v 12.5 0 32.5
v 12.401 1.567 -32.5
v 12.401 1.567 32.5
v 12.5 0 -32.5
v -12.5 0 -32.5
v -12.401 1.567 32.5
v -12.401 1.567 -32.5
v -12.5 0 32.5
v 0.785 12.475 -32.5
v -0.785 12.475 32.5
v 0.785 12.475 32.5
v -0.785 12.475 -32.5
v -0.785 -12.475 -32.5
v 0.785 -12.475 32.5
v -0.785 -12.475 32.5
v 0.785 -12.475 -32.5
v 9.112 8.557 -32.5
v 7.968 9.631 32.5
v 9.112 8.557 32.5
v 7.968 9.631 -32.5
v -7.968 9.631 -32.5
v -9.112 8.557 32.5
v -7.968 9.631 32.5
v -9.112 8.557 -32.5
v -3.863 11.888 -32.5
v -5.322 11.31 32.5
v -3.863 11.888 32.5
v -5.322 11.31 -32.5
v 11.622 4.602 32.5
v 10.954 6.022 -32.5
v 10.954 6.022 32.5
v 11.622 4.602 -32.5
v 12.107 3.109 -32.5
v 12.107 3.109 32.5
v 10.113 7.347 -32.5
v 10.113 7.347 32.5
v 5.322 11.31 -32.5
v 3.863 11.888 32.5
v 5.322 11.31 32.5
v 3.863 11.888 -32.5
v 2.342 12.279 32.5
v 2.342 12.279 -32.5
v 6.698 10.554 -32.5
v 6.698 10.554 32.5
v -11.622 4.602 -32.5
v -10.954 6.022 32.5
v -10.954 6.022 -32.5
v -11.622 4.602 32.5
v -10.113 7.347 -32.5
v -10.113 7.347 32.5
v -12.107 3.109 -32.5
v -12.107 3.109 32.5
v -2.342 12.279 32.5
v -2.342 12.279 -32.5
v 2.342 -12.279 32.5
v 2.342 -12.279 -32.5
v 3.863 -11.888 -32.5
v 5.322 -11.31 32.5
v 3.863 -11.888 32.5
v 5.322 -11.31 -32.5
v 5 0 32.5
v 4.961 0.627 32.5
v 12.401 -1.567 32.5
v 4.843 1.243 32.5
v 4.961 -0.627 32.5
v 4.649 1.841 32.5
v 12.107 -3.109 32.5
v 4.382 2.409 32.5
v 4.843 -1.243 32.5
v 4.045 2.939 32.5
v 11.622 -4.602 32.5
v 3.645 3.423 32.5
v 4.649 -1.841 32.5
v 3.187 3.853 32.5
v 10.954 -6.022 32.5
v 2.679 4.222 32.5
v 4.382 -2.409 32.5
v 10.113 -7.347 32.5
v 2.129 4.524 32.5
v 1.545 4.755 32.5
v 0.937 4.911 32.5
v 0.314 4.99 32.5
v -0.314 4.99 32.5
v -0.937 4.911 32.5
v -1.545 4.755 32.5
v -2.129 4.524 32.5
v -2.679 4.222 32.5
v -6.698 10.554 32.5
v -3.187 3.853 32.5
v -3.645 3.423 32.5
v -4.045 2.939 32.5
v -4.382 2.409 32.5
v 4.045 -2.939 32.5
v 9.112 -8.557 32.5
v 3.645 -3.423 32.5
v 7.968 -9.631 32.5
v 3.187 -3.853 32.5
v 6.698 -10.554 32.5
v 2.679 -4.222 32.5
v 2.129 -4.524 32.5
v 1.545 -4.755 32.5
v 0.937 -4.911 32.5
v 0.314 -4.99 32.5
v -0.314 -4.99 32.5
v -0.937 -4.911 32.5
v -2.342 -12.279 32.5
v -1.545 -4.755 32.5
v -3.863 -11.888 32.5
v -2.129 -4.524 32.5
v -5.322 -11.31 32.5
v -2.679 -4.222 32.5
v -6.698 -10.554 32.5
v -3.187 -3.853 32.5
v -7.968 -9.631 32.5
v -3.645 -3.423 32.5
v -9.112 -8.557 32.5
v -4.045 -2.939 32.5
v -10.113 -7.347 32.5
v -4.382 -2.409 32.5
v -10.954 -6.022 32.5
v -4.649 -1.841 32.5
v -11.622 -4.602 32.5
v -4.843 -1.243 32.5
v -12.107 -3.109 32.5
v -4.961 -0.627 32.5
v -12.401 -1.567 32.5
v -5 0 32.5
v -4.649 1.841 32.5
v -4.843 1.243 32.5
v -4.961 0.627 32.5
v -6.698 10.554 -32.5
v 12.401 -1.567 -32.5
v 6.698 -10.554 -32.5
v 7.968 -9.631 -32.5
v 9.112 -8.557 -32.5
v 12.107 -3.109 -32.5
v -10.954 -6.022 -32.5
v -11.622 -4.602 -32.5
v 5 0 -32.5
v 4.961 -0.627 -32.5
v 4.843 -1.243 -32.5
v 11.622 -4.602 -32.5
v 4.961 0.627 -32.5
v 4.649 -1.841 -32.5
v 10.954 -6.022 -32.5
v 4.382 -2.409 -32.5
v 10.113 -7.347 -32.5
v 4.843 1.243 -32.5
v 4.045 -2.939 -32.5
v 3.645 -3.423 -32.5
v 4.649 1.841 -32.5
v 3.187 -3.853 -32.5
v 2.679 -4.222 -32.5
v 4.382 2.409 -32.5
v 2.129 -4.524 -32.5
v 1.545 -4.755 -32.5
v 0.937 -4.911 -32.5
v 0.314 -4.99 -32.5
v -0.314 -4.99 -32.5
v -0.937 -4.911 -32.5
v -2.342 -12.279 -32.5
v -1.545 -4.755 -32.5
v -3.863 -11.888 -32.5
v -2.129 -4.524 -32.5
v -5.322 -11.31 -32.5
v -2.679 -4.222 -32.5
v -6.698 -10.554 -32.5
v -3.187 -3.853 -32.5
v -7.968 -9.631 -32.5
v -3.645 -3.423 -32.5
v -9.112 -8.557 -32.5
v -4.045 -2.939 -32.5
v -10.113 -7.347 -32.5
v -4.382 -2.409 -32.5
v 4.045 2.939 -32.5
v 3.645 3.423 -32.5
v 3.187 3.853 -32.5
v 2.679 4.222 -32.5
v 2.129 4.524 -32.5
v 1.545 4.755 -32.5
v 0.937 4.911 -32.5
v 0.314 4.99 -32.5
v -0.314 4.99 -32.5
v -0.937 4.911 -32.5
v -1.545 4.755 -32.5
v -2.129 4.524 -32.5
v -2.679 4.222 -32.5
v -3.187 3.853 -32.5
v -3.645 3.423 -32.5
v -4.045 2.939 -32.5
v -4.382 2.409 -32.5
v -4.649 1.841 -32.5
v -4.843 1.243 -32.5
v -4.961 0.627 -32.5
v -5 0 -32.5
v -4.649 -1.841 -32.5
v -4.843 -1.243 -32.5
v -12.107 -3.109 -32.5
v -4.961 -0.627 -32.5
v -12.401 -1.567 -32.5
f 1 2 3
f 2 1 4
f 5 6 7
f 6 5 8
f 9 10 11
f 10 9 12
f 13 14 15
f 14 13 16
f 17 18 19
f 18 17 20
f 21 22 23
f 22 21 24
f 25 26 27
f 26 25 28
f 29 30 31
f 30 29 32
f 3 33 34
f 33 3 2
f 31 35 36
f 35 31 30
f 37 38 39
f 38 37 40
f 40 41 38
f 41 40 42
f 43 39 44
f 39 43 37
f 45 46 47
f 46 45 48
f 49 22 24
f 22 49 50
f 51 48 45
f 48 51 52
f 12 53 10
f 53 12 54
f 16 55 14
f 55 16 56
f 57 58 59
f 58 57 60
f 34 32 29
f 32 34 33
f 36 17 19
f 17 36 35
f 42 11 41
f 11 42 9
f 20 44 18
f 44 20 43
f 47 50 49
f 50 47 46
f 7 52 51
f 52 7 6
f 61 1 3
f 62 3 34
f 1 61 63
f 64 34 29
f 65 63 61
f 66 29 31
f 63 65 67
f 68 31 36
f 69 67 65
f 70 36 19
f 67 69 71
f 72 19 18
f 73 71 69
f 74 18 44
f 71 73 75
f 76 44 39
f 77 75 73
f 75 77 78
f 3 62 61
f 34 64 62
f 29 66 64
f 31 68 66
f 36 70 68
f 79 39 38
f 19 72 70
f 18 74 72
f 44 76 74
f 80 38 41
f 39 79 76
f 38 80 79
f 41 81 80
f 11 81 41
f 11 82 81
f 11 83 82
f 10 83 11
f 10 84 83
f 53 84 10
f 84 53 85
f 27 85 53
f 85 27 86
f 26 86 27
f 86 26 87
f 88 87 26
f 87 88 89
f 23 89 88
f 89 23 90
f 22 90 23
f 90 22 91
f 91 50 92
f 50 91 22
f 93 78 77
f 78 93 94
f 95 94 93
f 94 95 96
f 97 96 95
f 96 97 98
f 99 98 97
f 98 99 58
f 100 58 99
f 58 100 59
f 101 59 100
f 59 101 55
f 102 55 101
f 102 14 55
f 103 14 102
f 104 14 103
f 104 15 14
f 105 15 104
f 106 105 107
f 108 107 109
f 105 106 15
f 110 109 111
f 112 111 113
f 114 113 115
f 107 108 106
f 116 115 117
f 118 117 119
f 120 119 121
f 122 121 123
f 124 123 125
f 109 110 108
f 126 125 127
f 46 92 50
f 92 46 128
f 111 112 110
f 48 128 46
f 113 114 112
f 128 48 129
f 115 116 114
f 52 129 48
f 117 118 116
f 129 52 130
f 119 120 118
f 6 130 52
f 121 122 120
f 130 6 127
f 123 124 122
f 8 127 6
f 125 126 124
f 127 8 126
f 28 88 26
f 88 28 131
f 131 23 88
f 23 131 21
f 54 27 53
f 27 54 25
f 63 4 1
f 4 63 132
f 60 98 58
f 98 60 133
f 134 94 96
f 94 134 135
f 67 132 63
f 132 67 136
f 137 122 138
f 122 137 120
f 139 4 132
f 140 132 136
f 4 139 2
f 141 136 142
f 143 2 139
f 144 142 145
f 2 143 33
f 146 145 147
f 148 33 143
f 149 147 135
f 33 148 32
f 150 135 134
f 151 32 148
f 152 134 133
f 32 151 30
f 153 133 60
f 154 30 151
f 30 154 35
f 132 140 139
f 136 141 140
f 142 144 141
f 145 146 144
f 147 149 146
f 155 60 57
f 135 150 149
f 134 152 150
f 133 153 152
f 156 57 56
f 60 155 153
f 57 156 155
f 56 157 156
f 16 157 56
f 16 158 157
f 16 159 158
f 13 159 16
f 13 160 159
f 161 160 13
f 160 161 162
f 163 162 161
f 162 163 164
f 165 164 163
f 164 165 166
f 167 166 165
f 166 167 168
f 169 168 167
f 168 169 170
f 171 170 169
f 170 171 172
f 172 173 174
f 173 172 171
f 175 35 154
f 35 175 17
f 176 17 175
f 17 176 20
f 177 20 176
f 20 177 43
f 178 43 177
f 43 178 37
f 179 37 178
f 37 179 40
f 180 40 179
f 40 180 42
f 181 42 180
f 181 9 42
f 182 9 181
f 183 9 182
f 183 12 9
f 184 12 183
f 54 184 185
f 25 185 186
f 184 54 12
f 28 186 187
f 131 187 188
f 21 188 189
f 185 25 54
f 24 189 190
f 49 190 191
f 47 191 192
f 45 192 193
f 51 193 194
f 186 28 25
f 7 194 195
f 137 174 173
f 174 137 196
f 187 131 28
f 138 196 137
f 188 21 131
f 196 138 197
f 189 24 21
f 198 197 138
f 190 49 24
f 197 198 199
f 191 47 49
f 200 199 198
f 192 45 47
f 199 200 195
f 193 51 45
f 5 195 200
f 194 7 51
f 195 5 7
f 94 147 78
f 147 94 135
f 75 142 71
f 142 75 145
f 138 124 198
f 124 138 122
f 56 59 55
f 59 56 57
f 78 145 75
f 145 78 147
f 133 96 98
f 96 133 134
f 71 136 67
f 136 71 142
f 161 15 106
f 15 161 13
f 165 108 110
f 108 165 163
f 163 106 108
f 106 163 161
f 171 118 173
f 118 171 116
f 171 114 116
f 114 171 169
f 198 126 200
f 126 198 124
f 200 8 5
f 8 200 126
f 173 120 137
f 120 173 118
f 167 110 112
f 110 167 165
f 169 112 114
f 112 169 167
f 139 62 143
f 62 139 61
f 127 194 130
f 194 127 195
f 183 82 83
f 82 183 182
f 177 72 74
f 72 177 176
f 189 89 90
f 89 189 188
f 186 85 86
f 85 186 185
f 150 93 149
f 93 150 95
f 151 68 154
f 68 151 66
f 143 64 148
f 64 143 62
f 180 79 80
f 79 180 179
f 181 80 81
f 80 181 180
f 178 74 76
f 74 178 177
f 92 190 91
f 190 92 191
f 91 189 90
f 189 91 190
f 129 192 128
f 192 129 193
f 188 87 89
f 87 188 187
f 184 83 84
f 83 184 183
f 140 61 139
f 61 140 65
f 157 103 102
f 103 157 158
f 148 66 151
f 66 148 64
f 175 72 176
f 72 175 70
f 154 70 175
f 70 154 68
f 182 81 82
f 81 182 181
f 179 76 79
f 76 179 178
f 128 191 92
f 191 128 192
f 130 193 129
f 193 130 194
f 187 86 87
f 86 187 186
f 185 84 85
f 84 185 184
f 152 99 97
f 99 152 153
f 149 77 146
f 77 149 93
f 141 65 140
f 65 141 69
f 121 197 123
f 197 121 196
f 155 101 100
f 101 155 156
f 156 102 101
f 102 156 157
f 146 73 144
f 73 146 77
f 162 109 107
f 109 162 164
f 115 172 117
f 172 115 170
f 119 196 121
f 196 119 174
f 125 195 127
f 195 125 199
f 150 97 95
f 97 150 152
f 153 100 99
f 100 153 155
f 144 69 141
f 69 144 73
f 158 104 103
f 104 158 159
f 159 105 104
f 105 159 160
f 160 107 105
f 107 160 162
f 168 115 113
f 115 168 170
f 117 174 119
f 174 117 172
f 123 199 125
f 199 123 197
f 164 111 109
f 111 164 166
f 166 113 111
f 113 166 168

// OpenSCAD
$fn = 50;


difference() {
	union() {
		translate(v = [0, 0, -32.5000000000]) {
			cylinder(h = 65, r = 12.5000000000);
		}
	}
	union() {
		translate(v = [0, 0, -100.0000000000]) {
			cylinder(h = 200, r = 5);
		}
	}
}
